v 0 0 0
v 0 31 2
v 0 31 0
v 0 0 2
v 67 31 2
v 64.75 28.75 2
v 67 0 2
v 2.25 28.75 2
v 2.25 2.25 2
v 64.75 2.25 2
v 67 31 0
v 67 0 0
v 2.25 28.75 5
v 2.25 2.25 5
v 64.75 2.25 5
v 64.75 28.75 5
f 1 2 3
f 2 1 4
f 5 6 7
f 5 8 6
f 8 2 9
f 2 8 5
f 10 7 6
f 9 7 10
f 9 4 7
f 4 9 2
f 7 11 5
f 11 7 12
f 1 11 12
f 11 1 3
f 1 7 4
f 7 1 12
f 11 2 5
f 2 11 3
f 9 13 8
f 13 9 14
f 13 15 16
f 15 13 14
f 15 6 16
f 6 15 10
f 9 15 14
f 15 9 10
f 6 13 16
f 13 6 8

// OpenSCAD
$fn=50;

// ESP8266   49mm x 26mm x 14mm

//Korpus
cube([67,31,2]);
translate([2.25,2.25,2]) cube([62.5,26.5,3]);
	
